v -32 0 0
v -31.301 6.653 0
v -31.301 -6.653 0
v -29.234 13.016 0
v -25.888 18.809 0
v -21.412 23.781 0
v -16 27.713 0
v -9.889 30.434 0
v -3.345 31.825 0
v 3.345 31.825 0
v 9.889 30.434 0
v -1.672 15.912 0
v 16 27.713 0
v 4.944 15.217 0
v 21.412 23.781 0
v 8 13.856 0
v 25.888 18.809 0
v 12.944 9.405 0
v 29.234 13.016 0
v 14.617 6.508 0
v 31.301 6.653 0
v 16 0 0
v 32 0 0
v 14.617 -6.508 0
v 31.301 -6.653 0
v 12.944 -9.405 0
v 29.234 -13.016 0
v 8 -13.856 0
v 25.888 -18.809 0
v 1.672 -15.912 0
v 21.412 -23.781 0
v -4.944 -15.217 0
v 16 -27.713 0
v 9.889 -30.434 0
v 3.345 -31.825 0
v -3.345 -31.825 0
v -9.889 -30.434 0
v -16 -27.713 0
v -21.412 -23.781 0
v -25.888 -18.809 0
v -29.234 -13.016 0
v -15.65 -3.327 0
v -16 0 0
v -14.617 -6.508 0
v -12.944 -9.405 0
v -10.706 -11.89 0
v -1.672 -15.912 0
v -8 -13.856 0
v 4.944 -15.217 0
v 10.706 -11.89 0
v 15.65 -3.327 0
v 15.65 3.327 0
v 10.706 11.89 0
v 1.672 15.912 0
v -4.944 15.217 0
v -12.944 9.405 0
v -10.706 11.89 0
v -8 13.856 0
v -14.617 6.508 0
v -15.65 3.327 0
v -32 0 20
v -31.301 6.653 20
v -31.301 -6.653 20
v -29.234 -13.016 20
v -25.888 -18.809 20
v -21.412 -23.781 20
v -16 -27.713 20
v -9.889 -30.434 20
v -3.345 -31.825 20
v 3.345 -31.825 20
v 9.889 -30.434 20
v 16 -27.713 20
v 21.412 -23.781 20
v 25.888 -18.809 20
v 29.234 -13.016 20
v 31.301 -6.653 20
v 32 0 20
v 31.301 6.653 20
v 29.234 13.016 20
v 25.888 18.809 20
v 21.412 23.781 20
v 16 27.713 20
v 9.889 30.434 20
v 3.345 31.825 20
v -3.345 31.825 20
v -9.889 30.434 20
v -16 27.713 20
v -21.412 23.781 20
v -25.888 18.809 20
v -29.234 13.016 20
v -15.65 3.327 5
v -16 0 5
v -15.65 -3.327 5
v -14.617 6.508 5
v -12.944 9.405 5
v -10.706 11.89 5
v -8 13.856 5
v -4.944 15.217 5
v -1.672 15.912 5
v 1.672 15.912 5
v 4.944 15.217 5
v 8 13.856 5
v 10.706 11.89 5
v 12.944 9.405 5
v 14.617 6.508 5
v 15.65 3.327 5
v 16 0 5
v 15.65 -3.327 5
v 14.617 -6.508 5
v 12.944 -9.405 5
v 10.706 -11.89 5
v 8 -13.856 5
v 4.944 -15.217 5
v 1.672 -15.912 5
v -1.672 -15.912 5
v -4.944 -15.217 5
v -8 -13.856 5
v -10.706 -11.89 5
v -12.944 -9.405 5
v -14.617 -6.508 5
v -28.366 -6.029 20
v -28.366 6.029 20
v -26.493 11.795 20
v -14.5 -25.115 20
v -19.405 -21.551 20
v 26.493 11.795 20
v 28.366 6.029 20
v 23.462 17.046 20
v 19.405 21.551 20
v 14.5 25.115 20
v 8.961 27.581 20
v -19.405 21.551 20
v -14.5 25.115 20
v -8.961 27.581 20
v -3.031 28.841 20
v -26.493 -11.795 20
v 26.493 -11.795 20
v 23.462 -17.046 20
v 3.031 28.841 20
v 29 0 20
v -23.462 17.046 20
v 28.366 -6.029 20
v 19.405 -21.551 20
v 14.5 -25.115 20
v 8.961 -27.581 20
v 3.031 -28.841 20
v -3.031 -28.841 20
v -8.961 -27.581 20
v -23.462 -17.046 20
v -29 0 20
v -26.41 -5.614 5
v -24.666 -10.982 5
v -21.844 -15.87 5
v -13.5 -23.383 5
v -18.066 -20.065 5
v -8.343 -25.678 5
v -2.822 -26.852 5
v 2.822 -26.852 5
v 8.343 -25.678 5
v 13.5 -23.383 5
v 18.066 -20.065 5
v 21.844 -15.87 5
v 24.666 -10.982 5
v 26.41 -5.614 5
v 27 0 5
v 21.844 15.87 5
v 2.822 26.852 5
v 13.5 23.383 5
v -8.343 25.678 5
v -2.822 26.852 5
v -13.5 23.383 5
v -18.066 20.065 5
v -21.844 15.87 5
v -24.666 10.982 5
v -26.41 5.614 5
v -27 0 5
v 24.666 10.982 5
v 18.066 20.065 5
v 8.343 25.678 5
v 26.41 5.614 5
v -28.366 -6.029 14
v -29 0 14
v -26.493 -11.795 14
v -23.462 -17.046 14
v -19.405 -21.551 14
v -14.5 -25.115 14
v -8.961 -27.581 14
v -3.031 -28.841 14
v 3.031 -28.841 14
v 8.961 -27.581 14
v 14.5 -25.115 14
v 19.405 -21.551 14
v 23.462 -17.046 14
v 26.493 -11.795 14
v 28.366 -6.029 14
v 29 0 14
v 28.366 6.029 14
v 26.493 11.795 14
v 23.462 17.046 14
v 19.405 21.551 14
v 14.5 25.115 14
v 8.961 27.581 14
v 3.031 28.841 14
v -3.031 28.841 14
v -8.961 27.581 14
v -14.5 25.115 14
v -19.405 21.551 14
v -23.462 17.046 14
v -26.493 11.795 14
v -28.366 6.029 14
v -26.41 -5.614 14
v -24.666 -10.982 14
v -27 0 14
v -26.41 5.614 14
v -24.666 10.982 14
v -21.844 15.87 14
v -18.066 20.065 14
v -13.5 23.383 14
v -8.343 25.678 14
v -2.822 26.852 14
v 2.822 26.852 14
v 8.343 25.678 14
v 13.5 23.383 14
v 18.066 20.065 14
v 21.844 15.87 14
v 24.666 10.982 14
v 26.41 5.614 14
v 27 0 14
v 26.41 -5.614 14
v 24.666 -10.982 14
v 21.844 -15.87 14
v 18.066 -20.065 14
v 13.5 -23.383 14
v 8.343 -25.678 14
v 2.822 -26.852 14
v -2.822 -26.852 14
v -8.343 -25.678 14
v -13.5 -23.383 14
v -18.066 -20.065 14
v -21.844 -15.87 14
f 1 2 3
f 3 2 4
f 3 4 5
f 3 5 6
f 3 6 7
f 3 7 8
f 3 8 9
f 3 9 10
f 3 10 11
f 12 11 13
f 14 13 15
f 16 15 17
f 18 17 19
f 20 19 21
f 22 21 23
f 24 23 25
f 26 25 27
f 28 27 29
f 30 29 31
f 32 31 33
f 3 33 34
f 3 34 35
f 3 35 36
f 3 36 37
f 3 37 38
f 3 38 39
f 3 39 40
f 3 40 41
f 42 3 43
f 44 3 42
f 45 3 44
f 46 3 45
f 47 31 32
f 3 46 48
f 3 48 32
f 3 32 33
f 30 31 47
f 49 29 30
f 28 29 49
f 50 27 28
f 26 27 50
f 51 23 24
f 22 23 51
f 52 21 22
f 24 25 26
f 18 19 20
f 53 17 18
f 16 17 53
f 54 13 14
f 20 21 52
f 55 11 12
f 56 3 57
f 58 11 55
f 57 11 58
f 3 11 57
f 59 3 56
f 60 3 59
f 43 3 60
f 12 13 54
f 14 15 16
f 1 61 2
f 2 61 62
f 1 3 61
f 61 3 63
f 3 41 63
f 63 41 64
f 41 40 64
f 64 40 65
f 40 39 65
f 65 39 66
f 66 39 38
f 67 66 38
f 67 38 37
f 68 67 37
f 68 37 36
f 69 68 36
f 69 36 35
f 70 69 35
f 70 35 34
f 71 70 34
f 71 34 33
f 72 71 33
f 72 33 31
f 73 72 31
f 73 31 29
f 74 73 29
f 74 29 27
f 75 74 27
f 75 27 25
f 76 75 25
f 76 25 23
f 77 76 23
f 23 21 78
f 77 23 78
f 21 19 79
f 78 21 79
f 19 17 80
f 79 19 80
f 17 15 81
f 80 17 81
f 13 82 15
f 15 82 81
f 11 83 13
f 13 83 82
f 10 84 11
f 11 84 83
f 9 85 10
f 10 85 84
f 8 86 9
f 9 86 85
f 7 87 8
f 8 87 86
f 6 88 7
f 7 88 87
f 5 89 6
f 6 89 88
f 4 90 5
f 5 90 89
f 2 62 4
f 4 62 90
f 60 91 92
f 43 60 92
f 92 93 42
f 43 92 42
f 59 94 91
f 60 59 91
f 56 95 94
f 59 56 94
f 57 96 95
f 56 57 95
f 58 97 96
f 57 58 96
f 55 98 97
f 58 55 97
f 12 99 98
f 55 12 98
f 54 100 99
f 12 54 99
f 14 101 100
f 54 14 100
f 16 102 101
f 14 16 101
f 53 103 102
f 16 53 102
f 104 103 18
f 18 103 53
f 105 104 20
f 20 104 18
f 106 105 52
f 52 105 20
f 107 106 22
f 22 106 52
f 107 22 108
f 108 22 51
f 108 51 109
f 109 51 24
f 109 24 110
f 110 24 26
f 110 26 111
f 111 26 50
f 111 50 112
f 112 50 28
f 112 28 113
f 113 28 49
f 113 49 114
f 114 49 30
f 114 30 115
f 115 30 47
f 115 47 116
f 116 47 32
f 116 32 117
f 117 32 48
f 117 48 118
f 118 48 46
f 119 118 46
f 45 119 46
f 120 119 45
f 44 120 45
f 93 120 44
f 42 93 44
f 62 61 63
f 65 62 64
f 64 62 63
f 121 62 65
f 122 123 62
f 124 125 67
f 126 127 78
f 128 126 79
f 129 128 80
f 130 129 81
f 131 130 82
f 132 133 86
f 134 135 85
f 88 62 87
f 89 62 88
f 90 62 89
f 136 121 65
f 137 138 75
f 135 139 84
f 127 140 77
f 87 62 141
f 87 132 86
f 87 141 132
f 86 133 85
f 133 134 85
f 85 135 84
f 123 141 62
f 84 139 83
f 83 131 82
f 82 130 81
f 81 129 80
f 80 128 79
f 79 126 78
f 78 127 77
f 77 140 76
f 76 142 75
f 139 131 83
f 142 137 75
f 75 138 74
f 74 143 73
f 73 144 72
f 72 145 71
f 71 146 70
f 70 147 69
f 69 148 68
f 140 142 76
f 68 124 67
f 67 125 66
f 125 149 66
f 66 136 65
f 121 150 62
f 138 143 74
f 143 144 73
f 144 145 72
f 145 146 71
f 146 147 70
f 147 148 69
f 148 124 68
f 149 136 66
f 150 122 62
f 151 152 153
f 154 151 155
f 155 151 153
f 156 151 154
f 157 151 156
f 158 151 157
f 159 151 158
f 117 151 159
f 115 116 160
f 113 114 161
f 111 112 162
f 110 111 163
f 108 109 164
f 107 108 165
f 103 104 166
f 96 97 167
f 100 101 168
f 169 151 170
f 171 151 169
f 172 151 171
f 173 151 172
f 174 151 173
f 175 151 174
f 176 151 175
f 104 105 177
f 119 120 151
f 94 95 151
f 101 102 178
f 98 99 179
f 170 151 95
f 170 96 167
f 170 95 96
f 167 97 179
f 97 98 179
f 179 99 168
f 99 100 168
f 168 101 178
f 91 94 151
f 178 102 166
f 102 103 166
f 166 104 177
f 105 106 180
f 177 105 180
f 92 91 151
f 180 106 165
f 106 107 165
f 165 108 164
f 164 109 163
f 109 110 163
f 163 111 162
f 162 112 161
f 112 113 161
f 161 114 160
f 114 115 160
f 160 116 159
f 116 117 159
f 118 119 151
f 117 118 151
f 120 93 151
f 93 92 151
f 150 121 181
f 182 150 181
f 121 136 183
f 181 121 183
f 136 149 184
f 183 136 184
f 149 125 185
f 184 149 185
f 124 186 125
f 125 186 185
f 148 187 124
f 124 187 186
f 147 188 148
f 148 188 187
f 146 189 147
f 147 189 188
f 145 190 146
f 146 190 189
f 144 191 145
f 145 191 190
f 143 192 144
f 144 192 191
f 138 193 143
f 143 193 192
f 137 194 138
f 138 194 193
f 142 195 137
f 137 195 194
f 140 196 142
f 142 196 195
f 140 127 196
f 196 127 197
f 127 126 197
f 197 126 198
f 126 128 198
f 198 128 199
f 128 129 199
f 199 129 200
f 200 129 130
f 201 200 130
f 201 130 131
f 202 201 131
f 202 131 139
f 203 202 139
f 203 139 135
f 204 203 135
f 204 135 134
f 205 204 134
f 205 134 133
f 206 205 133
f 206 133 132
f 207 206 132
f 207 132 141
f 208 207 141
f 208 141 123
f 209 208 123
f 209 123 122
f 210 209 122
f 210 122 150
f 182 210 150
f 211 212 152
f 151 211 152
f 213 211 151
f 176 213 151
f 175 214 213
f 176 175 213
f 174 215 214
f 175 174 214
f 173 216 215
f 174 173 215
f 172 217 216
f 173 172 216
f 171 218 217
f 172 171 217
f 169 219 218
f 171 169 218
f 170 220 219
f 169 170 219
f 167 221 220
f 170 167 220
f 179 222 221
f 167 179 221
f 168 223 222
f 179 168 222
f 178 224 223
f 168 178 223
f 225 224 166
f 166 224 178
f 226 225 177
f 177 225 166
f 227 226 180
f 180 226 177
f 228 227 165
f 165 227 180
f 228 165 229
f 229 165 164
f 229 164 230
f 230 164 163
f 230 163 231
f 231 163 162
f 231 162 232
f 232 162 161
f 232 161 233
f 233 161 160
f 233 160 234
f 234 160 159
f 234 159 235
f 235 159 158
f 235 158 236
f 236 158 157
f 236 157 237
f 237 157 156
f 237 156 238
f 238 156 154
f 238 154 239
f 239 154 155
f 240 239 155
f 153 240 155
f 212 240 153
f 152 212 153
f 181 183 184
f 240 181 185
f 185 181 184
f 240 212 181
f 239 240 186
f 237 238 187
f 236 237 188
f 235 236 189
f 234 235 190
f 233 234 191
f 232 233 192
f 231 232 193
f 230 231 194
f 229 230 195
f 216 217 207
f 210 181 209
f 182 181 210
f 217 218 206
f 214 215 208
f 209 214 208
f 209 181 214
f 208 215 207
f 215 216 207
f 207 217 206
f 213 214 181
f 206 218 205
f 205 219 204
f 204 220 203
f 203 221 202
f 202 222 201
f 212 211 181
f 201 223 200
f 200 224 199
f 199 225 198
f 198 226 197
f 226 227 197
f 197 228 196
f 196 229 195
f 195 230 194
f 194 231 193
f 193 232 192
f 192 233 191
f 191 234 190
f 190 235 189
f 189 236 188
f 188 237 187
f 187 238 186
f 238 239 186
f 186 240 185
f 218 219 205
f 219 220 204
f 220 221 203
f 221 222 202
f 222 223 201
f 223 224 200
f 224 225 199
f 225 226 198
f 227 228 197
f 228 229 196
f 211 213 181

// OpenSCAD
//Ancho de la pared
pared  = 3;
//Radio del centro hueco
radioC = 11;
//Alto de la capa de apertura
aperH = 6;
//Ancho de la apertura
aperW = 5;
//Ancho del lente macro
macroW = 9.3;
//Profundidad del macro
macroH = 3;
//Profundidad parte de atras y delante
profDelante = 6;
profAtras = 6;

//
//Alto del cilindro del Macro
conH = 10;
//Ancho de la base del macro
macroBW = 9;
macroFH = 6;
macroFW = 10;

//
//Cilindro del MacroConnector
mcW = 32;
mcH = 20;
mcConnH = 8.5;//Altura connector a ranura
mcPared = 5;
mcCejaH = 6;

//
// Cannon
cannonRadio = 16;

difference(){
	cylinder(r=mcW,mcH);

	translate([0, 0, mcPared])
	cylinder(r=mcW-mcPared,mcH);

	translate([0, 0, -0.1])
	cylinder(r=cannonRadio,mcPared+.2);

	translate([0, 0, mcH-mcCejaH])
	cylinder(r=mcW-pared,mcCejaH+.1);

}


module Macro(){
	difference(){
		cylinder(r=radioC+pared,mcConnH+conH-0.1);

		translate([0, 0, -0.5])
		cylinder(r=radioC+0.1,mcConnH);

		translate([0, 0, mcConnH-0.6])
		cylinder(r=macroBW,conH+0.6);
	
		translate([0, 0, mcConnH-0.6])
		cylinder(r=macroFW, macroFH+0.6);

	}
}



module cilindroPared(h){
	translate([0, 0, h/2]){
		difference(){
			cylinder(r=radioC+pared,h, center=true);
			cylinder(r=radioC,h+2, center=true);
		}
	}
}

module apertura(){
	//Crea apertura
	translate([0, 0, (aperH/2)+profDelante ]){
		difference(){
			cylinder(r=radioC+1,aperH,center=true);
			translate([0, 0, aperH-macroH]){
				cylinder(r=macroW/2,aperH,center=true);
			}
			cube([aperW,aperW,aperH+2],center=true);		
		}
	}
}
